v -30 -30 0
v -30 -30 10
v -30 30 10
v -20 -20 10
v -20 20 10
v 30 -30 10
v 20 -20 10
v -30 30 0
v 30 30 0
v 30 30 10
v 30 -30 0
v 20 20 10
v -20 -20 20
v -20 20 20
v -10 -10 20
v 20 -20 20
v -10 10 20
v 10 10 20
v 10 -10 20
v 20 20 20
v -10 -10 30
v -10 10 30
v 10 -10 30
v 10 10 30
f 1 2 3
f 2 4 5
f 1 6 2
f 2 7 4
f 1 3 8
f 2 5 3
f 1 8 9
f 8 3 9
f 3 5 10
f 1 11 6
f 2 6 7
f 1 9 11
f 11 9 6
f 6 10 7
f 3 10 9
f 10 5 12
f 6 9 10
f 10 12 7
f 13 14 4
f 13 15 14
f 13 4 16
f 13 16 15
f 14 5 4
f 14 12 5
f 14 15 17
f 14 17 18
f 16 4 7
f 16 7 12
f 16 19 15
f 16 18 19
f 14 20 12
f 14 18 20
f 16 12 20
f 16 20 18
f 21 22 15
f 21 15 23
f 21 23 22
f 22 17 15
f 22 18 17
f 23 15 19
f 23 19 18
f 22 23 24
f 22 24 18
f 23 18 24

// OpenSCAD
union() {
    translate([0, 0, 5])
        cube([60, 60, 10], center = true);
    translate([0, 0, 15])
        cube([40, 40, 10], center = true);
    translate([0, 0, 25])
        cube([20, 20, 10], center = true);
}
